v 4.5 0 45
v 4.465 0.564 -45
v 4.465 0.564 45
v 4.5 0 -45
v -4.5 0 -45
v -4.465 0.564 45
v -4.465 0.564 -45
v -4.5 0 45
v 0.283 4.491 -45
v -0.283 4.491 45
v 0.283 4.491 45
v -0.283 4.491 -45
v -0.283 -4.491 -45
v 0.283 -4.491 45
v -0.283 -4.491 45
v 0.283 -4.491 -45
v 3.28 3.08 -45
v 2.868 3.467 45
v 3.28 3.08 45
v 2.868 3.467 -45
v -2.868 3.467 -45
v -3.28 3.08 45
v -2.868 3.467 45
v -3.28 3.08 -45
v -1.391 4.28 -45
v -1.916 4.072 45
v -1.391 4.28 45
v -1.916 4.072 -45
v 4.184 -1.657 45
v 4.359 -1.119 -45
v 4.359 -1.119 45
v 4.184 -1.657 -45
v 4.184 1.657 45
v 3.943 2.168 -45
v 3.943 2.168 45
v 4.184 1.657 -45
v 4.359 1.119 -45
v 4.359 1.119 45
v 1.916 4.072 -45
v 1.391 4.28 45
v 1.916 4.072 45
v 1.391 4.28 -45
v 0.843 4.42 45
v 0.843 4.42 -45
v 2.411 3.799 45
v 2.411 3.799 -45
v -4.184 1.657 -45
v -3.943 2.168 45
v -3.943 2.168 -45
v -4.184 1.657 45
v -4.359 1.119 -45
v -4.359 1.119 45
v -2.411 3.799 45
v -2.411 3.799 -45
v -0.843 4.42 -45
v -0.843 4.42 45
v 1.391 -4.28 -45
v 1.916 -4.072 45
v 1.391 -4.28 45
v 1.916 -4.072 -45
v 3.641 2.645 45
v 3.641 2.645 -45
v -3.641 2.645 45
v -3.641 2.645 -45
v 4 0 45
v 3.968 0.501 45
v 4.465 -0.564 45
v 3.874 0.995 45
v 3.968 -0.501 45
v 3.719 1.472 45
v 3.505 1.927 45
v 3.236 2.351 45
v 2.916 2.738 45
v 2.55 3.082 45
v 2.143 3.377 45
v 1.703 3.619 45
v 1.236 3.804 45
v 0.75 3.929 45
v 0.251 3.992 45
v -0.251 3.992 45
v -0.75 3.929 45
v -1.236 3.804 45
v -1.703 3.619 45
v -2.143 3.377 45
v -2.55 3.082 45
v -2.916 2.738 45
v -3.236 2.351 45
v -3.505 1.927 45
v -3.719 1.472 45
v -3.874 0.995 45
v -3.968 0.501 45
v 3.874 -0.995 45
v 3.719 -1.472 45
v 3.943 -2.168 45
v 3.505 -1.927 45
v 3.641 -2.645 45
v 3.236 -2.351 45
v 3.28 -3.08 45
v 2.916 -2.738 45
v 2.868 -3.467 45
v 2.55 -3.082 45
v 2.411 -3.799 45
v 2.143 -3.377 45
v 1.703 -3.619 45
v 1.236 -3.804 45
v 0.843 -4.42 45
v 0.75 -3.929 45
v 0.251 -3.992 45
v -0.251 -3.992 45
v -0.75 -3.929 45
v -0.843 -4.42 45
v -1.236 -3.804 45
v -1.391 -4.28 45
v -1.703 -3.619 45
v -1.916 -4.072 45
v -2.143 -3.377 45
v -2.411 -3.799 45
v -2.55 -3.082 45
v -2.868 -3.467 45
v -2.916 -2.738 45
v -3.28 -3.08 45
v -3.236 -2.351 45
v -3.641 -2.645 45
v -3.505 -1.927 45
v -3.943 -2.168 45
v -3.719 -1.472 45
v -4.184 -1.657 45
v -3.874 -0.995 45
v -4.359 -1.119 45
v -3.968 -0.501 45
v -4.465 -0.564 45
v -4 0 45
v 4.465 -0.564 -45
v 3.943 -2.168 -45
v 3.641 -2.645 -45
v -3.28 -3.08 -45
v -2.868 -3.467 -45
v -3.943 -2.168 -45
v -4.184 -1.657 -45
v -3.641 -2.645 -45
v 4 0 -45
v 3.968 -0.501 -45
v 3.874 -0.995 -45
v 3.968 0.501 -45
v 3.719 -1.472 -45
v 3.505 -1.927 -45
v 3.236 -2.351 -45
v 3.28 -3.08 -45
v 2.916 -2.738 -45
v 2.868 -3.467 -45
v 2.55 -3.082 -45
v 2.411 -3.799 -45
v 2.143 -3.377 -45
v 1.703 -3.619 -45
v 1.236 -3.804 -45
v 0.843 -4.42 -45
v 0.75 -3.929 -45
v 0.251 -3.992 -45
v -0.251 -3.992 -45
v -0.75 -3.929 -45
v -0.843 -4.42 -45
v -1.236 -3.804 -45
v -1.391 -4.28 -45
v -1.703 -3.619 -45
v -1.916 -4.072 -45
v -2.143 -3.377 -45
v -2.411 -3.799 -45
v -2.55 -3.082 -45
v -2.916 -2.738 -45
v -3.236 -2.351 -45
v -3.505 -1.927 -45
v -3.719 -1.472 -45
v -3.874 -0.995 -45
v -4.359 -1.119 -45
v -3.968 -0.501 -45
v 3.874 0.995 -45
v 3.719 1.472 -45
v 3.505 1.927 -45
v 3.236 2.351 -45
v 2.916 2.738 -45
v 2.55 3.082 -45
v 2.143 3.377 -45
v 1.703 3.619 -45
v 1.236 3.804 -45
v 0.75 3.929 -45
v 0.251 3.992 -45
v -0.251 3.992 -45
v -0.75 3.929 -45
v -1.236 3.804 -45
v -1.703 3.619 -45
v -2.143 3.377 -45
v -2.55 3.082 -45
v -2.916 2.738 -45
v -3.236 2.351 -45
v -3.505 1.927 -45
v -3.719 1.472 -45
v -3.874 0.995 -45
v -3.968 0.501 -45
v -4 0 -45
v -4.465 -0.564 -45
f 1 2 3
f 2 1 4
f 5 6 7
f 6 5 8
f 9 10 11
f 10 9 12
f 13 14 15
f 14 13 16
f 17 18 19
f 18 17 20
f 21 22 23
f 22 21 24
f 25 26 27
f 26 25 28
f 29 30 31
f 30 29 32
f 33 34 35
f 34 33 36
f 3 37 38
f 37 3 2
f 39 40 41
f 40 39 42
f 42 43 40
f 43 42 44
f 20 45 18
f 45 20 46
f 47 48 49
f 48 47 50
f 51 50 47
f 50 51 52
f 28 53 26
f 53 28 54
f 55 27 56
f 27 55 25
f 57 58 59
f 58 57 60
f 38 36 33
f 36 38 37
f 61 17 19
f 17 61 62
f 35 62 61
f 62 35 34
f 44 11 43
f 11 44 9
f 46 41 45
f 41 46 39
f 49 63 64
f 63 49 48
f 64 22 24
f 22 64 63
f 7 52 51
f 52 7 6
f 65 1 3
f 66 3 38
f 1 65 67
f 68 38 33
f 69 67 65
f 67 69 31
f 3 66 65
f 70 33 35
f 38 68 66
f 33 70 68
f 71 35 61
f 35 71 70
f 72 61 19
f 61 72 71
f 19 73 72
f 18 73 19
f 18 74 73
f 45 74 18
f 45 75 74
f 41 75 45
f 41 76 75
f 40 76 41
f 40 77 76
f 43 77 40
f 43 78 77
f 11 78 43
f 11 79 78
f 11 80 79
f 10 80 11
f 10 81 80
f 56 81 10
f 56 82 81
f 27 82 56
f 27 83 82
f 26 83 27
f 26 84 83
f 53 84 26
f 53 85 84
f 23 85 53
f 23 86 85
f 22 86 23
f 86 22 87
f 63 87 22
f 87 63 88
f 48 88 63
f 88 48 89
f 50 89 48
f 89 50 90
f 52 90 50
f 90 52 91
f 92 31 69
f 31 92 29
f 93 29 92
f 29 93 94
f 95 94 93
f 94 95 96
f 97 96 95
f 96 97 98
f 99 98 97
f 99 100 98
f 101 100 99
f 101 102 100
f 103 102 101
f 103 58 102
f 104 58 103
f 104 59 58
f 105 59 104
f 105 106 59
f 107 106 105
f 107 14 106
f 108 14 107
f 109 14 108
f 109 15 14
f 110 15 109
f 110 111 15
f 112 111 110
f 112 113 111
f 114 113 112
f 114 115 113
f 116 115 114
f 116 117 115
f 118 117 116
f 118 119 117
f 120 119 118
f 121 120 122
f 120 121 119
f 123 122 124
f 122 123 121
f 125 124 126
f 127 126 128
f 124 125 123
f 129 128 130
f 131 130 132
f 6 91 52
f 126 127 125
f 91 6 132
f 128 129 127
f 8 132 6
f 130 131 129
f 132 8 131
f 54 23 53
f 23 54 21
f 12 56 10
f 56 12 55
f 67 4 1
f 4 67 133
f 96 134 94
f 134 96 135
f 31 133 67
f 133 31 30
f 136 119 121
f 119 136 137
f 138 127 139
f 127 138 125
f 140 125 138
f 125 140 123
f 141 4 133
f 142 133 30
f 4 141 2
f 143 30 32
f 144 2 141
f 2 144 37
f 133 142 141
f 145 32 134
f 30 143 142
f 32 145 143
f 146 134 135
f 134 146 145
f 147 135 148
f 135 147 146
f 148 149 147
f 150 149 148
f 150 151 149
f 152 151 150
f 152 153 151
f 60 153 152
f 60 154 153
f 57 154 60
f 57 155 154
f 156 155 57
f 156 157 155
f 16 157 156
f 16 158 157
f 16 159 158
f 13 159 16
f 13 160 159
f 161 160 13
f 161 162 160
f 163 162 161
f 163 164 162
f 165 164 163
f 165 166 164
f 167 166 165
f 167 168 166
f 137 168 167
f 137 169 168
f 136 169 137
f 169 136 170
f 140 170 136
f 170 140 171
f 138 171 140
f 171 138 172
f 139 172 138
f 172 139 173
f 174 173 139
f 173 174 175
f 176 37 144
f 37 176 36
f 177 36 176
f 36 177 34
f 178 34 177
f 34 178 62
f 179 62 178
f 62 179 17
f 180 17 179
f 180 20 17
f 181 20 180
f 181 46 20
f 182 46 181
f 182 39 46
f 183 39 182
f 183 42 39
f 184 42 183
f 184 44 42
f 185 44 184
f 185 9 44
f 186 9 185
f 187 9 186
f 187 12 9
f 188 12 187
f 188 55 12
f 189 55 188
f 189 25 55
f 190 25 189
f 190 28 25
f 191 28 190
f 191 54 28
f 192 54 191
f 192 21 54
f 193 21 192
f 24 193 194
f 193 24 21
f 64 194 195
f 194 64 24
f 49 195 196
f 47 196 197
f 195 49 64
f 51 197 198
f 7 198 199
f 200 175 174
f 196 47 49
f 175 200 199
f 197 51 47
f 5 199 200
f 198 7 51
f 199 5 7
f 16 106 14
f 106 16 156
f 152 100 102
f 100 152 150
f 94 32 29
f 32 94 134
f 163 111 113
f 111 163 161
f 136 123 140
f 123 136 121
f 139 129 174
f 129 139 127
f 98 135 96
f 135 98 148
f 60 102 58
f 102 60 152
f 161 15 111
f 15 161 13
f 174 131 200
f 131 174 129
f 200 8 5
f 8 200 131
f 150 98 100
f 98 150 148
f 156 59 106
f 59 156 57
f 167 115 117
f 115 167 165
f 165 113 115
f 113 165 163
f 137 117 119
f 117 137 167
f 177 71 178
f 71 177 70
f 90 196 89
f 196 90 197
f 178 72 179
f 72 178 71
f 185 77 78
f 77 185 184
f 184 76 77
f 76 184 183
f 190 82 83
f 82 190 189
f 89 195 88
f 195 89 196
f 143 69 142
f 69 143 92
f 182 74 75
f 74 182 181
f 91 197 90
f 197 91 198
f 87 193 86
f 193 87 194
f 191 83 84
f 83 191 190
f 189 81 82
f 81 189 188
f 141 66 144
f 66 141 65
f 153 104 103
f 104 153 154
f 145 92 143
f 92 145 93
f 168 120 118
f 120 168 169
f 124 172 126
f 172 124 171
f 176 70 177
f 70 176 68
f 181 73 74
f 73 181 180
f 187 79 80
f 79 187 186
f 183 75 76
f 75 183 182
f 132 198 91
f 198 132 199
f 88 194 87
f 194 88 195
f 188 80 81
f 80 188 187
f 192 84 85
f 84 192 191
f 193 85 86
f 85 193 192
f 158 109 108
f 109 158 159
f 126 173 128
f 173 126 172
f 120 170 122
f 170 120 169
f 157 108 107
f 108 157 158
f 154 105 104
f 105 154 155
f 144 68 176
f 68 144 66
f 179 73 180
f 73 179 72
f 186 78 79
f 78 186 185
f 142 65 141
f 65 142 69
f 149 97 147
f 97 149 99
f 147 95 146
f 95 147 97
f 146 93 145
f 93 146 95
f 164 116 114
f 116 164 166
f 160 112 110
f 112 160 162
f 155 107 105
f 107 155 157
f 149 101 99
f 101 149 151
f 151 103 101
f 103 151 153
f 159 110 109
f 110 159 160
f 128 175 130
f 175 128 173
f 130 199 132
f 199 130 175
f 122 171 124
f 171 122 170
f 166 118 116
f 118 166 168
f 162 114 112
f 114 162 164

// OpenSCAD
$fn = 50;


difference() {
	union() {
		translate(v = [0, 0, -45.0000000000]) {
			cylinder(h = 90, r = 4.5000000000);
		}
	}
	union() {
		translate(v = [0, 0, -100.0000000000]) {
			cylinder(h = 200, r = 4.0000000000);
		}
	}
}
